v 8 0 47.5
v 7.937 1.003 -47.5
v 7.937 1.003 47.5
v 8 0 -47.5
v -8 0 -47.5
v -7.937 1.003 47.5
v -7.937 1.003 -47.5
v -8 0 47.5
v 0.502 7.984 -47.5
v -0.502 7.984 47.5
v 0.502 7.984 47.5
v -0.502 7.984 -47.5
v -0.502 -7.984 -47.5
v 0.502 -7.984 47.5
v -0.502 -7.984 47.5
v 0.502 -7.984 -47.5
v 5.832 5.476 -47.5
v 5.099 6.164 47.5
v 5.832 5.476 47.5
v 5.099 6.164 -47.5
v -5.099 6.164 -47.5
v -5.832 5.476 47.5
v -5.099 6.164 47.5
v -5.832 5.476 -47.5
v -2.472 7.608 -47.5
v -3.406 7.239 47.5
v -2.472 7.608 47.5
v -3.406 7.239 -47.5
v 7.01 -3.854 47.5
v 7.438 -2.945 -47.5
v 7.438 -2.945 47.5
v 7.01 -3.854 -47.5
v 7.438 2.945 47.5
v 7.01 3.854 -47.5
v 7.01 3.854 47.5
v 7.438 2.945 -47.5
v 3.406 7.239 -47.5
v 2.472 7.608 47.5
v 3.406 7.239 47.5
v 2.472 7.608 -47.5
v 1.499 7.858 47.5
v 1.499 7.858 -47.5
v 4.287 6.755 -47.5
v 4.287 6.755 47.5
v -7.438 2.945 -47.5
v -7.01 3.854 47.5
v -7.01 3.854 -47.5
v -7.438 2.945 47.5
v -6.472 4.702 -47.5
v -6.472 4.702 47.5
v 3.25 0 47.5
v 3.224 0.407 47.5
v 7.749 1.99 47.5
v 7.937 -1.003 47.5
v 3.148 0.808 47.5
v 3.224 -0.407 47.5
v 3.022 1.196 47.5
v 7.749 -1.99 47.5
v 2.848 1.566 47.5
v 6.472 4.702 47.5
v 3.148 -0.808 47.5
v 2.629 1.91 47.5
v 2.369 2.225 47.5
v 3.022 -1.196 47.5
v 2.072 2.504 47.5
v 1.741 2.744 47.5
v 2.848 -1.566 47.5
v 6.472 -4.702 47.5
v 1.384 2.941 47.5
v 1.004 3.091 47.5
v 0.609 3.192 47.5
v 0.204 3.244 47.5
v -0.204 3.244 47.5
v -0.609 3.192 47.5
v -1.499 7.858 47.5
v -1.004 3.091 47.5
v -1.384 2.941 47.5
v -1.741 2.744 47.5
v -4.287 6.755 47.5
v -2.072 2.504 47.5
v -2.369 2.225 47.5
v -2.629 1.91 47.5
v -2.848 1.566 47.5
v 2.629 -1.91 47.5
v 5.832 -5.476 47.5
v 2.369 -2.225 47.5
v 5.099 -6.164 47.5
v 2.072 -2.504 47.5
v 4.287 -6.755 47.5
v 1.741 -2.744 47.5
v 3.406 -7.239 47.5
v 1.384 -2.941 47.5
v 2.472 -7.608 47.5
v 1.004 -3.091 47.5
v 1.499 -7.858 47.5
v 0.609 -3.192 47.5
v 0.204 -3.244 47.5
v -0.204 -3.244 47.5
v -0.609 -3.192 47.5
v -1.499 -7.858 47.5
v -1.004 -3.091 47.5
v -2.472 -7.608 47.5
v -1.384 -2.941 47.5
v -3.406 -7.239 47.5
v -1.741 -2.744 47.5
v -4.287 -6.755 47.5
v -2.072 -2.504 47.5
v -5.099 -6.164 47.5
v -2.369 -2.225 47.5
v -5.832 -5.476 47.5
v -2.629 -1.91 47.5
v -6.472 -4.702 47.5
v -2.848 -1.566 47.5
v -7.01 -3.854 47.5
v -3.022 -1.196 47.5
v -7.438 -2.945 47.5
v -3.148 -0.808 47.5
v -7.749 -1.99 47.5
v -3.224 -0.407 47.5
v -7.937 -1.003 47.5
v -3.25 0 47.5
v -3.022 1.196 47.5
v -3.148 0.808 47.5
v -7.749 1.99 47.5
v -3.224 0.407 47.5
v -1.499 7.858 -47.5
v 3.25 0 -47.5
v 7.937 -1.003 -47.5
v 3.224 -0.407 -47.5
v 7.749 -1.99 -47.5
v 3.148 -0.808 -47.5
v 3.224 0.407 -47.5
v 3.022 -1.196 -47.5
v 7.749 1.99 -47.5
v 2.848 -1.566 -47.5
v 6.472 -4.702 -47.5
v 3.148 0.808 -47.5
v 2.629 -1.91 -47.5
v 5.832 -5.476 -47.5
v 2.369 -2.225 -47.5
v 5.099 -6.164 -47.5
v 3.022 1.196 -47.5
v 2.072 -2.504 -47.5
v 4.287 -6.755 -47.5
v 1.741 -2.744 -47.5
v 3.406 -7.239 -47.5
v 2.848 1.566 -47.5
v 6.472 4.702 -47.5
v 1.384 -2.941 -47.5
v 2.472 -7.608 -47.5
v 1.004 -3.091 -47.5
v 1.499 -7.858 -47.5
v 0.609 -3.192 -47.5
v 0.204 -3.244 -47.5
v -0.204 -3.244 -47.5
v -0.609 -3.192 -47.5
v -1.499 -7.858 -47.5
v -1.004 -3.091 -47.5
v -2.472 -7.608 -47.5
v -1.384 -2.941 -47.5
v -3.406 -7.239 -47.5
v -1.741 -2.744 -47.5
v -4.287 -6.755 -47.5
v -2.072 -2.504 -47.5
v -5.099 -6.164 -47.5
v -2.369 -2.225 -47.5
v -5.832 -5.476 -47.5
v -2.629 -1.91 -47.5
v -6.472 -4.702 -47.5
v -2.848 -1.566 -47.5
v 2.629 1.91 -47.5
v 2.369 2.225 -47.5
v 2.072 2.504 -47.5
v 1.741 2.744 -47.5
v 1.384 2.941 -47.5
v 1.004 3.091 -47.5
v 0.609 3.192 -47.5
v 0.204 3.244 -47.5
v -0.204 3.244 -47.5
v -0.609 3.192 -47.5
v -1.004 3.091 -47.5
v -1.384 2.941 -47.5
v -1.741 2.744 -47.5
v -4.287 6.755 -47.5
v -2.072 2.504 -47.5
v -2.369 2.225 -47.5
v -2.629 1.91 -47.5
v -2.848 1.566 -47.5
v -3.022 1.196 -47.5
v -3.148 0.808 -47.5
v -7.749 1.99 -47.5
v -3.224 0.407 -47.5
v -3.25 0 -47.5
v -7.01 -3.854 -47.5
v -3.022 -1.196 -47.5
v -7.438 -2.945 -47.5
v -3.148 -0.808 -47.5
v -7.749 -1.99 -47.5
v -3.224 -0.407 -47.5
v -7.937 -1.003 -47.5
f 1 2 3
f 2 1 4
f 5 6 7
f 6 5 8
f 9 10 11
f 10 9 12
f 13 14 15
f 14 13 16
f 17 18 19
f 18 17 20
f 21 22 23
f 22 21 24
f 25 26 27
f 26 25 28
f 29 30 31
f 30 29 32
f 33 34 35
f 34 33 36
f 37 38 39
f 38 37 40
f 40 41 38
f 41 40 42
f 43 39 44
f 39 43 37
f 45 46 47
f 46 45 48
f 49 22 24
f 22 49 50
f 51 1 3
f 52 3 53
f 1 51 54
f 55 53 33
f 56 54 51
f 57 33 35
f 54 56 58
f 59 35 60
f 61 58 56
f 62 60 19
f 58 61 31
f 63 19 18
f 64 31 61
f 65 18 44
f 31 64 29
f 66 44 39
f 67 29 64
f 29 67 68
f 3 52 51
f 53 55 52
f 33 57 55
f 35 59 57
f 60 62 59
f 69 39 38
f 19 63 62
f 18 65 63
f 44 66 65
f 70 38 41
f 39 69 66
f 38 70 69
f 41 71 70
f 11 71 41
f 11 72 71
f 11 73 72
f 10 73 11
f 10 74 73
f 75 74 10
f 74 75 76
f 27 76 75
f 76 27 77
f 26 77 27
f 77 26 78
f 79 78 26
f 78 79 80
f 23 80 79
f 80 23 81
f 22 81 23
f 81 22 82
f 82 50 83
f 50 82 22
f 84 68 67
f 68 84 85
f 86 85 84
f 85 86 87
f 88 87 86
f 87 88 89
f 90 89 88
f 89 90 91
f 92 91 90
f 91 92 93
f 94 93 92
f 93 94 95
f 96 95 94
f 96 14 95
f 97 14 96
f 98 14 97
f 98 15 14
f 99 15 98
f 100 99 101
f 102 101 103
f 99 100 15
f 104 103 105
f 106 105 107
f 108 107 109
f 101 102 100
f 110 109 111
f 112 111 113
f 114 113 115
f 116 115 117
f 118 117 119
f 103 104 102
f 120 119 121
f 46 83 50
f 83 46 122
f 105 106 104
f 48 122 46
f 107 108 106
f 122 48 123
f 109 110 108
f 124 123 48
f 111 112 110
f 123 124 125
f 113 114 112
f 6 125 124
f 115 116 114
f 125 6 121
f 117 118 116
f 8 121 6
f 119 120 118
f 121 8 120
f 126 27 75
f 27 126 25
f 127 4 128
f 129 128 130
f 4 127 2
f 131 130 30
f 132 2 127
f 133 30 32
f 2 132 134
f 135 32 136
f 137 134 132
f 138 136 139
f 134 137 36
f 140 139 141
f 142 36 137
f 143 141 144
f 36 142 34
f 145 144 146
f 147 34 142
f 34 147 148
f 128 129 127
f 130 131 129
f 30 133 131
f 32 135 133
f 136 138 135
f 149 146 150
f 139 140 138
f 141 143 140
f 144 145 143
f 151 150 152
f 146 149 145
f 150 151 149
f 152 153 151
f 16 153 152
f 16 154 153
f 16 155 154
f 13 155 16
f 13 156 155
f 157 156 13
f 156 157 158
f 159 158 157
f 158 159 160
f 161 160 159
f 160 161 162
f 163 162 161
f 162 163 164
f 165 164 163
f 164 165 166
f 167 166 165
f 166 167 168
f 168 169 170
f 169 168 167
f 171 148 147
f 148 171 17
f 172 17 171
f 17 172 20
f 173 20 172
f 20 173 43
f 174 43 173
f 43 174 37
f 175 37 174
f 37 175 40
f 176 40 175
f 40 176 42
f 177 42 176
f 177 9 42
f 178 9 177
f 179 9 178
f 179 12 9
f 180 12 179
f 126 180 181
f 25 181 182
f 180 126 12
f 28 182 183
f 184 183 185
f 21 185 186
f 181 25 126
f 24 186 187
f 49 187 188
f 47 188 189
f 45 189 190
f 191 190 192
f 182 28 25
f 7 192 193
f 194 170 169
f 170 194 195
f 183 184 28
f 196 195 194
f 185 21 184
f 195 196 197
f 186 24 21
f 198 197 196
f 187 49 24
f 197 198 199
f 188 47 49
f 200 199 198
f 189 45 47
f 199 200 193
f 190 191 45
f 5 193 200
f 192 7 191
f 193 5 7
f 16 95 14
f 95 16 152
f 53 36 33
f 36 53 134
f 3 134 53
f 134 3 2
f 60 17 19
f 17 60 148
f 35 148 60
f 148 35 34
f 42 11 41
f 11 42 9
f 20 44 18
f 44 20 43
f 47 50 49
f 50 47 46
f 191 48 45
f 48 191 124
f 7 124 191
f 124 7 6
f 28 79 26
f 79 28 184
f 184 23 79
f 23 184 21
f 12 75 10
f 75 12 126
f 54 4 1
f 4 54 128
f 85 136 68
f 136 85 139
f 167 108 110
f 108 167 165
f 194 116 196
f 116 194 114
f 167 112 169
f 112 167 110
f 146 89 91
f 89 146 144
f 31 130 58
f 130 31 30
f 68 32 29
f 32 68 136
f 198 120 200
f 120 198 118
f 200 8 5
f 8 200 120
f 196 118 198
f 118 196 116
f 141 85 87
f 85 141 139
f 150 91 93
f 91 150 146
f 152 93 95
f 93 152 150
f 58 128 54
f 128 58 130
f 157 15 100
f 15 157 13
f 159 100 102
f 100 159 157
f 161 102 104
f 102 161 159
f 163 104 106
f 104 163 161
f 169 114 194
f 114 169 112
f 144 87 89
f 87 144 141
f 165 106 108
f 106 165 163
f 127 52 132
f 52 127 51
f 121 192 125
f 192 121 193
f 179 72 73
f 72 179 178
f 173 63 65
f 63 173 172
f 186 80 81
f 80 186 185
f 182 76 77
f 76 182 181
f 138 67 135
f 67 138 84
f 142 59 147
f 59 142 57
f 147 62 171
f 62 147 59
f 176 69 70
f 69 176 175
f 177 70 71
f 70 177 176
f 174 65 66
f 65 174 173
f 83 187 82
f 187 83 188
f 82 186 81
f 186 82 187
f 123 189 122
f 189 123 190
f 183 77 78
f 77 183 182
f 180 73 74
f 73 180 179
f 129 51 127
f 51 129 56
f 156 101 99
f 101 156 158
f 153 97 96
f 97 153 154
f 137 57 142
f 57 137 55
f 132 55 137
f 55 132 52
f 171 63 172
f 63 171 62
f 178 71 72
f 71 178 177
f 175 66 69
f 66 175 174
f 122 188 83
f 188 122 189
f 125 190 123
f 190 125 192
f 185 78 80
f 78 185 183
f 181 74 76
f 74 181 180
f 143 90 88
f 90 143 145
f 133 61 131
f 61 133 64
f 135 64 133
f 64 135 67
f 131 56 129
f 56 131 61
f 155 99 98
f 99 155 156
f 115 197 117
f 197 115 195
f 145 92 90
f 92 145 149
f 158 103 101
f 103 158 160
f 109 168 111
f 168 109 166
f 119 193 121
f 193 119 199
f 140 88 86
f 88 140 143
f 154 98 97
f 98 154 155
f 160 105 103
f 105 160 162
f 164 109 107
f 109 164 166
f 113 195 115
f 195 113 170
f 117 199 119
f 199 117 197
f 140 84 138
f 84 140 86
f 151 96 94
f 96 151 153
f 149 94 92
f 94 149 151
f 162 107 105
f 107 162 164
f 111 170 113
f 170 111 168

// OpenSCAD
$fn = 50;


difference() {
	union() {
		translate(v = [0, 0, -47.5000000000]) {
			cylinder(h = 95, r = 8.0000000000);
		}
	}
	union() {
		translate(v = [0, 0, -100.0000000000]) {
			cylinder(h = 200, r = 3.2500000000);
		}
	}
}
